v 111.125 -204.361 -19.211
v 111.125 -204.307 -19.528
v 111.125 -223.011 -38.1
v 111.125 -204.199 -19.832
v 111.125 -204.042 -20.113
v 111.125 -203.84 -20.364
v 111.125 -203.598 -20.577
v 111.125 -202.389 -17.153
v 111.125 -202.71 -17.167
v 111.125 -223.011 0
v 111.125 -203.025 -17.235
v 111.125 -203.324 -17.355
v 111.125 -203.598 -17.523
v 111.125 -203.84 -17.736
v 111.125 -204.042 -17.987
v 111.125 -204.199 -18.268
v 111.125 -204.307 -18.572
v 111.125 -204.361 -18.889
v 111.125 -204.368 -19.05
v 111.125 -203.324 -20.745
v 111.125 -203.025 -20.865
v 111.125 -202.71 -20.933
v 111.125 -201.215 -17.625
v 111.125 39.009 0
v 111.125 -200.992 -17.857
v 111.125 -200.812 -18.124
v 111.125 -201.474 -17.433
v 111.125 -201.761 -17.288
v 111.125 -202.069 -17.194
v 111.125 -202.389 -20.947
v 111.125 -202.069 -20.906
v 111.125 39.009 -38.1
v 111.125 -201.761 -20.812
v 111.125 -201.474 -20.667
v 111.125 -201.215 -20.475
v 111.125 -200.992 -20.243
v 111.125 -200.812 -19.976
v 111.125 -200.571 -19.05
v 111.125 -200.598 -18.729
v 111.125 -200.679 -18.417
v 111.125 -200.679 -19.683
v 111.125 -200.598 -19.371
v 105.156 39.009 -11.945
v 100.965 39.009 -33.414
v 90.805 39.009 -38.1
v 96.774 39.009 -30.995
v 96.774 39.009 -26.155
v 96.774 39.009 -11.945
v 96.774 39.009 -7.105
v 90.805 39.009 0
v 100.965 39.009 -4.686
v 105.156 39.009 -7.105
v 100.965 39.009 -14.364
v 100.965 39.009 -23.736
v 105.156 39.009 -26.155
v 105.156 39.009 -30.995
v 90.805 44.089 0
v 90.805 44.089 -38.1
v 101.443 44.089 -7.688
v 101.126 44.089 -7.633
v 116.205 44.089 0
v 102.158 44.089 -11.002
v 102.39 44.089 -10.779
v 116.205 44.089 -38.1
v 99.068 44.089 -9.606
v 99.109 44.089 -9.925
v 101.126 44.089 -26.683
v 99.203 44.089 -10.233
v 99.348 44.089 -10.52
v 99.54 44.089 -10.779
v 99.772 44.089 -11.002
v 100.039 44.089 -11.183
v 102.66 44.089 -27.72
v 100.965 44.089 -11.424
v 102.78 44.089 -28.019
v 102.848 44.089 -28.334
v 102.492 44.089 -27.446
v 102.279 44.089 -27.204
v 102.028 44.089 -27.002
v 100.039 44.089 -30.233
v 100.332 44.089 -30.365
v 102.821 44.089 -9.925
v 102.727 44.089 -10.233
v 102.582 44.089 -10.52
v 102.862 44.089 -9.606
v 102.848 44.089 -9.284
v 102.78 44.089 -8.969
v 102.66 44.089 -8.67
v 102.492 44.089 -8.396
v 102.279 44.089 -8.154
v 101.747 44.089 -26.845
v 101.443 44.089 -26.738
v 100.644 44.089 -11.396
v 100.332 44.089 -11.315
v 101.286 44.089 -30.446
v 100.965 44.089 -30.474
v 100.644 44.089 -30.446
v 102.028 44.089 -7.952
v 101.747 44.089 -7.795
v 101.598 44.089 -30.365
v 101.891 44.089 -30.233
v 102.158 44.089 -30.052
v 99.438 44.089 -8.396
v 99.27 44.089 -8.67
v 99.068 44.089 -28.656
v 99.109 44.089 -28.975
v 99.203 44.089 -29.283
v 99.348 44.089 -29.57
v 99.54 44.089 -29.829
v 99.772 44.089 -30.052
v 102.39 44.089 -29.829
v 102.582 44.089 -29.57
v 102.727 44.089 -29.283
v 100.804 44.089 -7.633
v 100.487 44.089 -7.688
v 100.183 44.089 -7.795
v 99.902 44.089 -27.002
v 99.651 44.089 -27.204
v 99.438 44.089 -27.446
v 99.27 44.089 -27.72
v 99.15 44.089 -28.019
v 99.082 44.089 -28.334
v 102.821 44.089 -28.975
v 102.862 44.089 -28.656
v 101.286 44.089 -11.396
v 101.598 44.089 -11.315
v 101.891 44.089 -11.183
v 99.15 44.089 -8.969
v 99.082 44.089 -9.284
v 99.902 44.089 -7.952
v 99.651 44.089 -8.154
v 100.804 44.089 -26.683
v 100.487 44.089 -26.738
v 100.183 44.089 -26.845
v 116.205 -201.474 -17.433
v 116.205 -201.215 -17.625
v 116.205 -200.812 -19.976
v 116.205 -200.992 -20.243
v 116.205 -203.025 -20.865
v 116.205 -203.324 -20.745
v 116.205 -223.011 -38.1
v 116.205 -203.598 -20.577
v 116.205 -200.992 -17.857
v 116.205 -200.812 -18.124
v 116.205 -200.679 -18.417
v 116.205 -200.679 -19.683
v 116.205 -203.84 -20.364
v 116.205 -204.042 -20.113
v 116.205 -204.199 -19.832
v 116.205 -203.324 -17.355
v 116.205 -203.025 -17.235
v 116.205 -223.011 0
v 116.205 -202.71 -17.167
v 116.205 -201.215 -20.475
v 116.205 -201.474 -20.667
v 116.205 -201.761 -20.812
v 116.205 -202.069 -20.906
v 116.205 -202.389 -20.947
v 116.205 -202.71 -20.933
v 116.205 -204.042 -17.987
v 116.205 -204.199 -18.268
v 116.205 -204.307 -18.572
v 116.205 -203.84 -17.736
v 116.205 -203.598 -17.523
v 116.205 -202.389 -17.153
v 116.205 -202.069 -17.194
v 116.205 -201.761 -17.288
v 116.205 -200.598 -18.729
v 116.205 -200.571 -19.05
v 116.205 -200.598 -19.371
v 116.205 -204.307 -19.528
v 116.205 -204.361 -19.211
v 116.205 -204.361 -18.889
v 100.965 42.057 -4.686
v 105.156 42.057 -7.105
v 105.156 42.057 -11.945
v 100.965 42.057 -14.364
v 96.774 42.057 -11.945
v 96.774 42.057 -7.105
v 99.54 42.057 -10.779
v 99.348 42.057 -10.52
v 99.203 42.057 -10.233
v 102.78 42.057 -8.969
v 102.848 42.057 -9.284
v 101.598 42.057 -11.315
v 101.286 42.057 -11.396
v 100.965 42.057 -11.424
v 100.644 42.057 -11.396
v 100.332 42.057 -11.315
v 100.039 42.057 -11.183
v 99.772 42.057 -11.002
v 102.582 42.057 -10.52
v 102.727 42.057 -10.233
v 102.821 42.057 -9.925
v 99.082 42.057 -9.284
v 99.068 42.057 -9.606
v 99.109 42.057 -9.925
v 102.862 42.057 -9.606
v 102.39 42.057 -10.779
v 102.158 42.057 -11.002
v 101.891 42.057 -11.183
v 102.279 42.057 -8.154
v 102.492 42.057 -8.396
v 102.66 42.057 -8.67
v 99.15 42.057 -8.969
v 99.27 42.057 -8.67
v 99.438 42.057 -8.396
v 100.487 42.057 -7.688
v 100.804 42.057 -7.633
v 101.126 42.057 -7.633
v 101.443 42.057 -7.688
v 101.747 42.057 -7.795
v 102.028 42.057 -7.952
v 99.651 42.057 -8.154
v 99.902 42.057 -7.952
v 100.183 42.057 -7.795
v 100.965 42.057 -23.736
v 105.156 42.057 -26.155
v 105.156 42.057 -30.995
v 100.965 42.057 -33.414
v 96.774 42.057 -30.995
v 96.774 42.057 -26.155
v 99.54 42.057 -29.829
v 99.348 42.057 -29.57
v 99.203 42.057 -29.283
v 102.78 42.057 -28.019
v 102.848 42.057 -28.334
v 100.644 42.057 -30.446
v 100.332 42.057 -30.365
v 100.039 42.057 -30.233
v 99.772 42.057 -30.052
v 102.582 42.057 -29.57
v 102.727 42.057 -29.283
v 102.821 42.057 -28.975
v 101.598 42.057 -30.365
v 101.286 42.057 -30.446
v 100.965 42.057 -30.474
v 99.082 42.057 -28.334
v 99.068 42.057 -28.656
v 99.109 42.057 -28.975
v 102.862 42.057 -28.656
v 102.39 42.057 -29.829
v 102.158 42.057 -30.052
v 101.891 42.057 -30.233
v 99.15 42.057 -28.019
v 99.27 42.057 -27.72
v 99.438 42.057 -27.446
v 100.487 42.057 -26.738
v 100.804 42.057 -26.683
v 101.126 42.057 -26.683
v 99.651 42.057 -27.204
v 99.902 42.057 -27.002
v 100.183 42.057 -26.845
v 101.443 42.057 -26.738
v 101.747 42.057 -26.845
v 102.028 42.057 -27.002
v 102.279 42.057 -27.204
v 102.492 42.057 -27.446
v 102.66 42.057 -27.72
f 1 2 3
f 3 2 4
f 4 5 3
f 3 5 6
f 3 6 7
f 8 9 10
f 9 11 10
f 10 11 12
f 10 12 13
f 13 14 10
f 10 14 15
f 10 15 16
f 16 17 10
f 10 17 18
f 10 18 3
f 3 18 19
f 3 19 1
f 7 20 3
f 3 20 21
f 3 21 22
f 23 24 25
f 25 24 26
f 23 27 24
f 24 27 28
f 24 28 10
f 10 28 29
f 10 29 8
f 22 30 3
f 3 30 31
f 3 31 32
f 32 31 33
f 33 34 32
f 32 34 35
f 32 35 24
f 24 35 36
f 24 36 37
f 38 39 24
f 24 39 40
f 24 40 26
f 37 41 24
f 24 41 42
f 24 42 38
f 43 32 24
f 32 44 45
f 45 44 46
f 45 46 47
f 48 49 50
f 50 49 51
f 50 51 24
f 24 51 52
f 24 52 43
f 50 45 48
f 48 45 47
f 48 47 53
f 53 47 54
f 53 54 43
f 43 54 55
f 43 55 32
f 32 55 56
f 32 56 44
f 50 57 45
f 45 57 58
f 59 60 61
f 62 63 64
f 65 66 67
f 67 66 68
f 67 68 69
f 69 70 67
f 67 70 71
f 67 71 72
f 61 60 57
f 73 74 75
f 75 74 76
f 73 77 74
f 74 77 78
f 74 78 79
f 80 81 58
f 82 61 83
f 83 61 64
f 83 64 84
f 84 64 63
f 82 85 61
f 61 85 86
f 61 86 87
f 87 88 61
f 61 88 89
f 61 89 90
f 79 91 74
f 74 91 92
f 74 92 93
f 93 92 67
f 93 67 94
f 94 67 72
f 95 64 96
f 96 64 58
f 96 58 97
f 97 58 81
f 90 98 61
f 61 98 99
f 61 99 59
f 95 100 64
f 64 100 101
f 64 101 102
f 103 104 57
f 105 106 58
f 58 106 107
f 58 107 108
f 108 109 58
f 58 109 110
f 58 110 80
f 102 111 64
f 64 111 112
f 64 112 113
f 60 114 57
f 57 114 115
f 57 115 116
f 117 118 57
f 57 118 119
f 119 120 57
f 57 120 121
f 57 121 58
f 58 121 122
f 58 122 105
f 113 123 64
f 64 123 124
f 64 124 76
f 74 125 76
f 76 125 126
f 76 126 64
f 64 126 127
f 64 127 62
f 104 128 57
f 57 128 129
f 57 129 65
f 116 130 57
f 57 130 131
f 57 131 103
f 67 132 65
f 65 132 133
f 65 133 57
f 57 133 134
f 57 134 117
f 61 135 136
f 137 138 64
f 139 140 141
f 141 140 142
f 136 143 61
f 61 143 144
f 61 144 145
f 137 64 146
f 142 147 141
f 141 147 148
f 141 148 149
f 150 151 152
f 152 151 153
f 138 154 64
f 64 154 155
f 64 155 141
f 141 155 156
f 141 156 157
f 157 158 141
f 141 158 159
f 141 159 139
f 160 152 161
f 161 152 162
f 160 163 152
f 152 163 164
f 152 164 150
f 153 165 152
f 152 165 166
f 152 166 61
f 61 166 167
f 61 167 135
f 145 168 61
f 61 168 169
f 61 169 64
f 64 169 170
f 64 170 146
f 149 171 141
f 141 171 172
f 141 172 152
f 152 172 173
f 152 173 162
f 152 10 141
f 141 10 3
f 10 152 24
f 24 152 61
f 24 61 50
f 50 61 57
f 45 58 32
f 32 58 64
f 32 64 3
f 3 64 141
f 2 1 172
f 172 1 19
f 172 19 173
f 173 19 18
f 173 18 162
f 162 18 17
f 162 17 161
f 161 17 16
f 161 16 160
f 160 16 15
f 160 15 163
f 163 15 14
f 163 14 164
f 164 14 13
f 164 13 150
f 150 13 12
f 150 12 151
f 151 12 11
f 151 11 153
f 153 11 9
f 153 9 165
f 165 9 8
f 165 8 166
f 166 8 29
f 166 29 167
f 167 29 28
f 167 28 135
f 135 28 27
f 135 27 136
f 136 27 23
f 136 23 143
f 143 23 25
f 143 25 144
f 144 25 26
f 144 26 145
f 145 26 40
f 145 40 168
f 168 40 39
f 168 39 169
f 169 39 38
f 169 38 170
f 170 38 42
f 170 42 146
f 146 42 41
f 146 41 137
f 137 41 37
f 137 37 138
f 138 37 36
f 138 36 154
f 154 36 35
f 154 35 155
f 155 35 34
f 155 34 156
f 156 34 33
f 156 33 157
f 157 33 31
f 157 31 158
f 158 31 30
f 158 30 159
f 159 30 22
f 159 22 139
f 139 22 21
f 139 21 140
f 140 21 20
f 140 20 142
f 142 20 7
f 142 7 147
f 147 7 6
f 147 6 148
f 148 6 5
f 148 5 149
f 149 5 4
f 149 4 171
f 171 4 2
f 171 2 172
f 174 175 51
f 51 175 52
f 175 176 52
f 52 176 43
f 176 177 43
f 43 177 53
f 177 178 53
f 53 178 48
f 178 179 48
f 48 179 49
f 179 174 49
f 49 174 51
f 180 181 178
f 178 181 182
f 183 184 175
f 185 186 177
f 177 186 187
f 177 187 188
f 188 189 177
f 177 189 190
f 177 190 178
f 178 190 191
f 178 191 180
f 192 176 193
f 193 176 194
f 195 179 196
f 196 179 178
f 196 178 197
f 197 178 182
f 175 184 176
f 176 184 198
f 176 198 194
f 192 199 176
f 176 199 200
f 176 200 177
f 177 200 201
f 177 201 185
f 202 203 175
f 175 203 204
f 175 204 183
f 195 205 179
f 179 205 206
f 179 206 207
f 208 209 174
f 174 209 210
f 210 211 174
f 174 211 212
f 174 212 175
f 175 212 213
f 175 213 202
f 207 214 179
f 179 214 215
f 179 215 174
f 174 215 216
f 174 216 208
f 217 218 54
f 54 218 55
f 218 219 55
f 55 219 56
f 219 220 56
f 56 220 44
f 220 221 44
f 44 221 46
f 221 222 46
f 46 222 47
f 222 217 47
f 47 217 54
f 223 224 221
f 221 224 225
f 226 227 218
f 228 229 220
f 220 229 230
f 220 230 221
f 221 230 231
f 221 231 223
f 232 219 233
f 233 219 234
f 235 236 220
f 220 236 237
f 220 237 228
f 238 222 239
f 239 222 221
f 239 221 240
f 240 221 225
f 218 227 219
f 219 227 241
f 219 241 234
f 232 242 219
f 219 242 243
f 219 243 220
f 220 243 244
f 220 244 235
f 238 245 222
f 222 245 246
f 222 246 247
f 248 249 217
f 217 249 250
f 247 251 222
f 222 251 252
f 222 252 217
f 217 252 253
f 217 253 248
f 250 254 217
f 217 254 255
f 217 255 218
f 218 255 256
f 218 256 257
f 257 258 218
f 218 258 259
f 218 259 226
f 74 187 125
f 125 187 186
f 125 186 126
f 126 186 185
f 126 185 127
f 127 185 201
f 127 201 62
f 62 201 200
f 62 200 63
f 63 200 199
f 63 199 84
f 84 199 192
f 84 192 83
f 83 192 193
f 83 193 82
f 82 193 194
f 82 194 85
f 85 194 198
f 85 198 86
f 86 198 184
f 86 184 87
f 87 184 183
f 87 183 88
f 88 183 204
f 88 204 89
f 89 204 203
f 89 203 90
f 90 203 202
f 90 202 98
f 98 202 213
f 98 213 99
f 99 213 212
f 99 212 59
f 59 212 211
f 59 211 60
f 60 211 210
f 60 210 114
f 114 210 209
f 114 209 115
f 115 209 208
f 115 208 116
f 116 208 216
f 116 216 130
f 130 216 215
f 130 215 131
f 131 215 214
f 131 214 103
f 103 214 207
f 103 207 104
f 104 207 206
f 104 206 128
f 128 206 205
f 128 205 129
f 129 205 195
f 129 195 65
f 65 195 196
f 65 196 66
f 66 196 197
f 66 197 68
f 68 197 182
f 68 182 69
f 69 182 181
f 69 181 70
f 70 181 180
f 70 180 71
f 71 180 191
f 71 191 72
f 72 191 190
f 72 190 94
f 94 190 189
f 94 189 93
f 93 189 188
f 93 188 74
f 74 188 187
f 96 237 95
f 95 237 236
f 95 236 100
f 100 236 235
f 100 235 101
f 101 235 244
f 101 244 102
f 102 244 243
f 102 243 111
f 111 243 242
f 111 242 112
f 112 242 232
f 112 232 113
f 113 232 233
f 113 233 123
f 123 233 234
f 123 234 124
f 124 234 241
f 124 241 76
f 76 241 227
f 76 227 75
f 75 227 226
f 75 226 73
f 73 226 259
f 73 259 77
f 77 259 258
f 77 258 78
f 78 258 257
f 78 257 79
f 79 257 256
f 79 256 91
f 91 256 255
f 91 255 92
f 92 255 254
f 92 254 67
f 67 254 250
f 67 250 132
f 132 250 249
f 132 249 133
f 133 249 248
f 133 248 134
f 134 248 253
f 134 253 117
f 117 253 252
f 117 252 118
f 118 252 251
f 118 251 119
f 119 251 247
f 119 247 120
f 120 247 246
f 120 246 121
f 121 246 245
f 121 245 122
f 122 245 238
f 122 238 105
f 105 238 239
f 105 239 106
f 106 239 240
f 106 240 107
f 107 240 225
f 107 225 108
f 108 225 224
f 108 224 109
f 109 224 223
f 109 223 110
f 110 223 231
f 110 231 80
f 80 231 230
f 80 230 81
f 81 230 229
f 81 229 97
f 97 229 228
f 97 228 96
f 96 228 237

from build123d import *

# Parameters (mm, degrees)
EXTRU_MINCE1_DEPTH      = 38.1
ESQUISSE2_R             = 1.89865
ENL_V_MAT_EXTRU_1_DEPTH = 228.663979486
ENL_V_MAT_EXTRU_2_DEPTH = 3.048
D_GAGEMENT_61_D         = 3.7973


with BuildPart() as part:
    # Esquisse1 → Extru.-Mince1 (new body)
    with BuildSketch(Plane.XY):
        Polygon((90.805, 44.088736397), (116.205, 44.088736397), (116.205, -223.011474044), (111.125, -223.011474044), (111.125, 39.008736397), (90.805, 39.008736397), align=None)
    extrude(amount=-EXTRU_MINCE1_DEPTH)

    # Esquisse2 → Enlèv. mat.-Extru.1 (cut, through all)
    with BuildSketch(Plane(origin=(116.205, 0, 0), x_dir=(0, 0, -1), z_dir=(1, 0, 0))):
        with Locations(Location((19.05, -202.469224044, 0), (0, 0, 90))):
            Circle(ESQUISSE2_R)
    extrude(amount=-ENL_V_MAT_EXTRU_1_DEPTH, mode=Mode.SUBTRACT)

    # Esquisse3 → Enlèv. mat.-Extru.2 (cut)
    with BuildSketch(Plane.XZ.offset(-39.008736397)):
        Polygon((100.965, -23.735650044), (96.774, -26.155325022), (96.774, -30.994674978), (100.965, -33.414349956), (105.156, -30.994674978), (105.156, -26.155325022), align=None)
        Polygon((100.965, -4.685650044), (96.774, -7.105325022), (96.774, -11.944674978), (100.965, -14.364349956), (105.156, -11.944674978), (105.156, -7.105325022), align=None)
    extrude(amount=-ENL_V_MAT_EXTRU_2_DEPTH, mode=Mode.SUBTRACT)

    # Dégagement #61 (through all)
    with Locations(Plane(origin=(0, 42.056736397, 0), x_dir=(-1, 0, 0), z_dir=(0, -1, 0))):
        with Locations((-100.965, 28.575), (-100.965, 9.525)):
            Hole(D_GAGEMENT_61_D / 2)


solid = part.part
